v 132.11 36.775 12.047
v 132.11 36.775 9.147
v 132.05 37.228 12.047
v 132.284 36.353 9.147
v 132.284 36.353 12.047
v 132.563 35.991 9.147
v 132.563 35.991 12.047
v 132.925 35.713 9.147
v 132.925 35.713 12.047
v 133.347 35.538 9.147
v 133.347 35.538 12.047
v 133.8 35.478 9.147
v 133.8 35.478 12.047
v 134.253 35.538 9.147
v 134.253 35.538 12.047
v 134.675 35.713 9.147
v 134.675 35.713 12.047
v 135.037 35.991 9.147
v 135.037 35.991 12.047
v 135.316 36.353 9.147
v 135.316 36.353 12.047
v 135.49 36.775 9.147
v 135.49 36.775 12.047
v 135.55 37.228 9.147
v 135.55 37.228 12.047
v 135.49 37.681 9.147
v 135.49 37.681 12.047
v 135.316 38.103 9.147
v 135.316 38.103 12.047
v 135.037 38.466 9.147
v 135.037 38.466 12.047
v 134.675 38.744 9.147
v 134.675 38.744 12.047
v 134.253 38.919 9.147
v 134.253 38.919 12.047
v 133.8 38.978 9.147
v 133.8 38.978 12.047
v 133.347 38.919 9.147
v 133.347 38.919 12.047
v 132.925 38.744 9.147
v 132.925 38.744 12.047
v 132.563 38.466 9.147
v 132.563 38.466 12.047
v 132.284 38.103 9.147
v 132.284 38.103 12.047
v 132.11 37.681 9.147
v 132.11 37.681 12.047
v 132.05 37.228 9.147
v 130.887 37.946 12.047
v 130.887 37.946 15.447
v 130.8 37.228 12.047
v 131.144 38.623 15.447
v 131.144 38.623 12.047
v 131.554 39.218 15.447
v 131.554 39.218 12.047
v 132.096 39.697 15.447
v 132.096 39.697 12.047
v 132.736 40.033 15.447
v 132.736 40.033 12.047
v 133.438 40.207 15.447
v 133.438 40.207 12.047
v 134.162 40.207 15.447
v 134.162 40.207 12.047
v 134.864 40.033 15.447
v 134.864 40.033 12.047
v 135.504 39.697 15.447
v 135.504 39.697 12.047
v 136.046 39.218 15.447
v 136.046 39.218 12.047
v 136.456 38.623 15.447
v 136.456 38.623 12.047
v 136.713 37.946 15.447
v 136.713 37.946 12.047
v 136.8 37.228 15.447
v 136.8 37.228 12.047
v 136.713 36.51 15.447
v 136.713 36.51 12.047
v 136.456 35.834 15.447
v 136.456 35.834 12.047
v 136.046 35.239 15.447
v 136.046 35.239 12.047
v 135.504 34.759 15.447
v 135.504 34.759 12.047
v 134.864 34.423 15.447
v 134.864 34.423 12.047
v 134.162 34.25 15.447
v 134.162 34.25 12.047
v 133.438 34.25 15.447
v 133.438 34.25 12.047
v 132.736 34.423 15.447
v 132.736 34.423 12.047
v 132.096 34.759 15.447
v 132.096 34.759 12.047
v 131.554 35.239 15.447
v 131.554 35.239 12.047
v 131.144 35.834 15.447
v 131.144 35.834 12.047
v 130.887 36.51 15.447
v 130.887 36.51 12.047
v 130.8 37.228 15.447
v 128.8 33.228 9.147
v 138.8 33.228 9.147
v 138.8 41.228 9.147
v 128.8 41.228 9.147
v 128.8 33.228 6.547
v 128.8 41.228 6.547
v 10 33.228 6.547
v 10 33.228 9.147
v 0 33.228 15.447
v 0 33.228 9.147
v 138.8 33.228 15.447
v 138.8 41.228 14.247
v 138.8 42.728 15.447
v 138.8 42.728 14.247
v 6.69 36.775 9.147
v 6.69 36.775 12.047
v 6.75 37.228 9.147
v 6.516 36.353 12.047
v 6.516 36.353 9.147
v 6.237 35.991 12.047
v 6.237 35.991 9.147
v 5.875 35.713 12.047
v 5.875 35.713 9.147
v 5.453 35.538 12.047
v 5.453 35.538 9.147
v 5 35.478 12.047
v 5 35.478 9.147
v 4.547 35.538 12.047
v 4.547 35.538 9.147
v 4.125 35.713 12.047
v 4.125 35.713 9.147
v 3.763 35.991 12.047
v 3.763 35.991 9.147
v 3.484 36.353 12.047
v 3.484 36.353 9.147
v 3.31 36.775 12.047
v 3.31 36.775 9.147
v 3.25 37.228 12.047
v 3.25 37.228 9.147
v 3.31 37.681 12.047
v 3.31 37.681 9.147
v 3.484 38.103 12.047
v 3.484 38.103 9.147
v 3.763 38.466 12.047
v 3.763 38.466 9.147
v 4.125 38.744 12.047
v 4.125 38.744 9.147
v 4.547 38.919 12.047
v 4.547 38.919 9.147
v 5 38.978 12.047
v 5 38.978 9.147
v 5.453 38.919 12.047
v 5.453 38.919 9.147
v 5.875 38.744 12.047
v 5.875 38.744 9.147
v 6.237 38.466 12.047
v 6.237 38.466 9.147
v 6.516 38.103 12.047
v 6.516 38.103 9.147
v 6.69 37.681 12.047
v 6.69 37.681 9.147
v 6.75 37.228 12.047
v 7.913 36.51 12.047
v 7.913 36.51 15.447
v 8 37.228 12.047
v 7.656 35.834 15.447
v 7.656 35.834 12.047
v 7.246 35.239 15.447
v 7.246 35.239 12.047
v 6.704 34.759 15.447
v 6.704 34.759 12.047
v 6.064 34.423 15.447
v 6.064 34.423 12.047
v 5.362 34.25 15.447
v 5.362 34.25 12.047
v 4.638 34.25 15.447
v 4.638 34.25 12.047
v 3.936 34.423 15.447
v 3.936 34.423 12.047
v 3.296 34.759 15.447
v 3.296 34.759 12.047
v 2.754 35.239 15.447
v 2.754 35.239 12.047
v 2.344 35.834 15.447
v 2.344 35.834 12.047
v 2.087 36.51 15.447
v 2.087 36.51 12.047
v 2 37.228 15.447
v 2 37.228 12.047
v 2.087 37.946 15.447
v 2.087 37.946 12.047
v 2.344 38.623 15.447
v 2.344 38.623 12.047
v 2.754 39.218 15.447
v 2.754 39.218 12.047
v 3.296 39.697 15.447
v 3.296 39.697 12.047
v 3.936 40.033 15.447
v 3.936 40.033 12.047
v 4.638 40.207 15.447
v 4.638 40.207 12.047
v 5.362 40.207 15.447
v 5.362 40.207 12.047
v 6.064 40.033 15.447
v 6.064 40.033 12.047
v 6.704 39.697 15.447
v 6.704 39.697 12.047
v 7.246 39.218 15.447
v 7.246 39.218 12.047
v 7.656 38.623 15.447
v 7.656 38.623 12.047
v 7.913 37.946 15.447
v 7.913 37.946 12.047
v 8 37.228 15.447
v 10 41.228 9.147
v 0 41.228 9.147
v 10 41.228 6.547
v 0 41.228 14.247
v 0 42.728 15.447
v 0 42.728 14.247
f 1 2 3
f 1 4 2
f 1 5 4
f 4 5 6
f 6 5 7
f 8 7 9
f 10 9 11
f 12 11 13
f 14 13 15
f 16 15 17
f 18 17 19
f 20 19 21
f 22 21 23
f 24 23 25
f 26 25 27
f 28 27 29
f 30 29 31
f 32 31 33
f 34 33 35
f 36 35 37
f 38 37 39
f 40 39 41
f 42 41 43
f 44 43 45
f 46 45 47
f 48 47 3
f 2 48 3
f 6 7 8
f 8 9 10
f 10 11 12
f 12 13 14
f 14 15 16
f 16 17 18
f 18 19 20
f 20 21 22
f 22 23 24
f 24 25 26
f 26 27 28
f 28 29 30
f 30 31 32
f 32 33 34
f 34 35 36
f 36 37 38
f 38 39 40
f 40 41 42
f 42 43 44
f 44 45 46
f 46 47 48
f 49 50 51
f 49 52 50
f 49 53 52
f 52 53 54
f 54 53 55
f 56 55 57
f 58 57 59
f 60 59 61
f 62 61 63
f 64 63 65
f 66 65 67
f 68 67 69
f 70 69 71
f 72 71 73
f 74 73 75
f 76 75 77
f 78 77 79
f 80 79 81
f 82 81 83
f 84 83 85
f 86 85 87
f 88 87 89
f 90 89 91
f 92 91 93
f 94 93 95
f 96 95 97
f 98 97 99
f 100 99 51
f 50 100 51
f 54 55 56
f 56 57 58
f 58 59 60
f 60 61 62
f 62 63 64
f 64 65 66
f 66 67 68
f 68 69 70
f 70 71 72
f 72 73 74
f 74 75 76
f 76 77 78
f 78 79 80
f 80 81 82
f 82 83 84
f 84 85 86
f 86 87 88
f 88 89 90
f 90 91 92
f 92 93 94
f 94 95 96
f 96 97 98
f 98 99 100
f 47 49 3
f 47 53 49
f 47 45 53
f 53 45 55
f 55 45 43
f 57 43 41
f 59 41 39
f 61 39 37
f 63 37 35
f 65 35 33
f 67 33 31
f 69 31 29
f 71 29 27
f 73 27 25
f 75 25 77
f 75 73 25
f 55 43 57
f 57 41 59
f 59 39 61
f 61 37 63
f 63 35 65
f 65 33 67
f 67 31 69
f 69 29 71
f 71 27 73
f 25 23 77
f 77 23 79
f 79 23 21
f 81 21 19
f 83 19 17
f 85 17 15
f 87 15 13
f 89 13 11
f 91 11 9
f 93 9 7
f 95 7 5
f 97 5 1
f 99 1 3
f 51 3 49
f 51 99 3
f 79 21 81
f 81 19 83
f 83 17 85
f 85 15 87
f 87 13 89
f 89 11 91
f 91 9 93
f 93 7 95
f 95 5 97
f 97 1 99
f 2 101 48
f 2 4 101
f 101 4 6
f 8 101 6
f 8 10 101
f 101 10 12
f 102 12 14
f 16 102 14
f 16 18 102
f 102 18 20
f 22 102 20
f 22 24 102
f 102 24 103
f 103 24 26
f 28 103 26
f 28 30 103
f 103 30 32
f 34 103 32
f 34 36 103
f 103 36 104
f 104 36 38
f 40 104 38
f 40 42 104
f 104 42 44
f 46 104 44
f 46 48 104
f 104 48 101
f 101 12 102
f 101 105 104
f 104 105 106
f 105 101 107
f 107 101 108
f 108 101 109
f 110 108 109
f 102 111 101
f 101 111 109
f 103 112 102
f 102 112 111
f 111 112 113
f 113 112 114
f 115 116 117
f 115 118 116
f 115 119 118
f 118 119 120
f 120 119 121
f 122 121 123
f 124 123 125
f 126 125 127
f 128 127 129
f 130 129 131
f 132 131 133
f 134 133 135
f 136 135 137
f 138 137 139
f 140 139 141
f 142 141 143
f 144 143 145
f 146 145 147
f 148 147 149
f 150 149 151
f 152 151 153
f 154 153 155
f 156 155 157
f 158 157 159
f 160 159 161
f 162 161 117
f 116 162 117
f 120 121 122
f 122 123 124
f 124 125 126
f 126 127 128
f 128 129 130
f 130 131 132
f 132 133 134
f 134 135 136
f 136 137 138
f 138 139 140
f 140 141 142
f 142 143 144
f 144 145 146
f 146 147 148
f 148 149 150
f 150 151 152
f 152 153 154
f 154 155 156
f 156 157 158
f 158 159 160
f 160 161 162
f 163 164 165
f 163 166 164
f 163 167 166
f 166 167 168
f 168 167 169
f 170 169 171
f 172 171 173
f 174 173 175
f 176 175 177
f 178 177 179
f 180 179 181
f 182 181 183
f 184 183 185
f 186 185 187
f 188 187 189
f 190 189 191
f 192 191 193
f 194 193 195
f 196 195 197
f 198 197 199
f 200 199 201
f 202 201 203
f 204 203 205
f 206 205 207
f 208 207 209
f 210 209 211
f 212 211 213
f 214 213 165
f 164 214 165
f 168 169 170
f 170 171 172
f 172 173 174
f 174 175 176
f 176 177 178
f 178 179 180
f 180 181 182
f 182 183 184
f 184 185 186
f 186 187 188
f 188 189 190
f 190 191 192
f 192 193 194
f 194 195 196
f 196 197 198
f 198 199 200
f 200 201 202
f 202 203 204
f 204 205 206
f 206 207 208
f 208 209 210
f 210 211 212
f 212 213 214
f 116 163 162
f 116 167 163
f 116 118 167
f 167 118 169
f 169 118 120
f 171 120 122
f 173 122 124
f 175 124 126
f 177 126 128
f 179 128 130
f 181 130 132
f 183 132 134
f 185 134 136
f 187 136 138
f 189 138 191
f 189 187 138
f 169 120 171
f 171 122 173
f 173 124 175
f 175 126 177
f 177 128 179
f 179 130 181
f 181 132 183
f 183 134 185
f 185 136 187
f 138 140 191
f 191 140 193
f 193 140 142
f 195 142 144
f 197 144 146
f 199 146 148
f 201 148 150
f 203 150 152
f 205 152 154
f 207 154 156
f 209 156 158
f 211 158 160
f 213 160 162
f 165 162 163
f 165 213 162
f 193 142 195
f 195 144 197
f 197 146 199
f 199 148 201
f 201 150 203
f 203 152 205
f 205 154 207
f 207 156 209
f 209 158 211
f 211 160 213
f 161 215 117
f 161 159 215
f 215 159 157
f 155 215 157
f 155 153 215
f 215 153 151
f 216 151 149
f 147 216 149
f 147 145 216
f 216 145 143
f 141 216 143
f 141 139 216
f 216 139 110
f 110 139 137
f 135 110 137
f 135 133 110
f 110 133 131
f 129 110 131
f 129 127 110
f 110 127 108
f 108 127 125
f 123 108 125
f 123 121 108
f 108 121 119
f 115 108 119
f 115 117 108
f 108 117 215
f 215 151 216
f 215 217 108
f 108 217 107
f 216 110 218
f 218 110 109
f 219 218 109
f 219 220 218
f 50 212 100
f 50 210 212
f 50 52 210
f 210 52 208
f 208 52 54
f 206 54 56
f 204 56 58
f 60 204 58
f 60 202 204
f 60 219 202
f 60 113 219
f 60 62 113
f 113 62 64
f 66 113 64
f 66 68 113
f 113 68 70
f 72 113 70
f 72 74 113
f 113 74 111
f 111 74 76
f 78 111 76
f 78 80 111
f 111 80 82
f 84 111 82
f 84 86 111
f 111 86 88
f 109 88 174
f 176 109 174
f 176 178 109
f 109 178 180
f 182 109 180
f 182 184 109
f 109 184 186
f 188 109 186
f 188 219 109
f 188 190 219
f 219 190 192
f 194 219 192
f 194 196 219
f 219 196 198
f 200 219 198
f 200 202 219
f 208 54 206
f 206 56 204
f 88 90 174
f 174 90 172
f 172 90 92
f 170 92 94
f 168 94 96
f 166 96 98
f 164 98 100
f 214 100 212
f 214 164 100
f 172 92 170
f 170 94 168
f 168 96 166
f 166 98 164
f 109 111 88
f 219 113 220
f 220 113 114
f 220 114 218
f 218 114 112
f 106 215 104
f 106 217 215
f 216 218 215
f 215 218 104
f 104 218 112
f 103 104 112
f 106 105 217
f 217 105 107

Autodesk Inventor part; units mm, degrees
ref_plane "YZ Plane" through (0, 0, 0) normal (1, 0, 0) x (0, 1, 0)
ref_plane "XZ Plane" through (0, 0, 0) normal (0, 1, 0) x (-1, 0, 0)
ref_plane "XY Plane" through (0, 0, 0) normal (0, 0, 1) x (1, 0, 0)
sketch "Skizze2" plane through (0, 0, 0) normal (1, 0, 0) x (0, 1, 0)
  line L0 (33.2284, 9.1468) -> (33.2284, 6.5468)
  line L1 (33.2284, 9.1468) -> (33.2284, 15.4468)
  line L2 (33.2284, 15.4468) -> (42.7284, 15.4468)
  line L3 (41.2284, 6.5468) -> (33.2284, 6.5468)
  line L4 (42.7284, 14.2468) -> (41.2284, 14.2468)
  line L5 (42.7284, 14.2468) -> (42.7284, 15.4468)
  line L6 (33.2284, 15.4468) -> (42.7284, 15.4468)
  line L7 (33.2284, 9.1468) -> (33.2284, 15.4468)
  line L8 (33.2284, 9.1468) -> (41.2284, 9.1468)
  line L9 (41.2284, 14.2468) -> (41.2284, 9.1468)
  line L10 (42.7284, 14.2468) -> (42.7284, 15.4468)
  line L11 (41.2284, 9.1468) -> (41.2284, 6.5468)
  point P0 (0, 0)
extrude "Extrusion1" add sketch "Skizze2" along normal blind 69.4
sketch "Skizze3" plane through (0, 0, 0) normal (-1, 0, 0) x (0, 0, 1)
  line L0 (14.2468, 42.7284) -> (14.2468, 41.2284) projected
  line L1 (14.2468, 42.7284) -> (15.4468, 42.7284) projected
  line L2 (15.4468, 33.2284) -> (15.4468, 42.7284) projected
  line L3 (9.1468, 33.2284) -> (15.4468, 33.2284) projected
  line L4 (9.1468, 33.2284) -> (9.1468, 41.2284) projected
  line L5 (14.2468, 41.2284) -> (9.1468, 41.2284) projected
  line L6 (6.5468, 33.2284) -> (6.5468, 41.2284) projected
  line L7 (6.5468, 41.2284) -> (9.1468, 41.2284)
  line L8 (9.1468, 41.2284) -> (9.1468, 33.2284)
  line L9 (9.1468, 33.2284) -> (6.5468, 33.2284)
  line L10 (6.5468, 33.2284) -> (6.5468, 41.2284)
  point P0 (0, 0)
extrude "Extrusion2" cut sketch "Skizze3" against normal blind 10 contours L4 L9 L6 L7
sketch "Skizze4" plane through (0, 33.2284, 15.4468) normal (0, 0, 1) x (1, 0, 0)
  line L0 (0, 0) -> (10, 0) construction
  line L1 (5, 0) -> (5, 9.5) construction
  line L2 (0, 9.5) -> (69.4, 9.5) construction
  circle A0 centre (5, 4) radius 3
  line L3 (0, 9.5) -> (0, 0) construction
  point P0 (0, -33.2284)
  dimension "d4" = 6
  dimension "d5" = 5
  dimension "d6" = 4
extrude "Extrusion3" cut sketch "Skizze4" against normal blind 3.4
sketch "Skizze5" plane through (5, 37.2284, 12.0468) normal (0, 0, 1) x (1, 0, 0)
  circle A0 centre (0, 0) radius 3 projected
  circle A1 centre (0, 0) radius 1.75
  point P0 (-5, -37.2284)
  dimension "d9" = 3.5
extrude "Extrusion4" cut sketch "Skizze5" against normal blind 3.4 contours A1
mirror "Spiegeln1" about plane through (69.4, 37.2284, 7.8468) normal (1, 0, 0) of "Extrusion4", "Extrusion3", "Extrusion2", "Extrusion1"
properties part number "Case_bottom_front"
